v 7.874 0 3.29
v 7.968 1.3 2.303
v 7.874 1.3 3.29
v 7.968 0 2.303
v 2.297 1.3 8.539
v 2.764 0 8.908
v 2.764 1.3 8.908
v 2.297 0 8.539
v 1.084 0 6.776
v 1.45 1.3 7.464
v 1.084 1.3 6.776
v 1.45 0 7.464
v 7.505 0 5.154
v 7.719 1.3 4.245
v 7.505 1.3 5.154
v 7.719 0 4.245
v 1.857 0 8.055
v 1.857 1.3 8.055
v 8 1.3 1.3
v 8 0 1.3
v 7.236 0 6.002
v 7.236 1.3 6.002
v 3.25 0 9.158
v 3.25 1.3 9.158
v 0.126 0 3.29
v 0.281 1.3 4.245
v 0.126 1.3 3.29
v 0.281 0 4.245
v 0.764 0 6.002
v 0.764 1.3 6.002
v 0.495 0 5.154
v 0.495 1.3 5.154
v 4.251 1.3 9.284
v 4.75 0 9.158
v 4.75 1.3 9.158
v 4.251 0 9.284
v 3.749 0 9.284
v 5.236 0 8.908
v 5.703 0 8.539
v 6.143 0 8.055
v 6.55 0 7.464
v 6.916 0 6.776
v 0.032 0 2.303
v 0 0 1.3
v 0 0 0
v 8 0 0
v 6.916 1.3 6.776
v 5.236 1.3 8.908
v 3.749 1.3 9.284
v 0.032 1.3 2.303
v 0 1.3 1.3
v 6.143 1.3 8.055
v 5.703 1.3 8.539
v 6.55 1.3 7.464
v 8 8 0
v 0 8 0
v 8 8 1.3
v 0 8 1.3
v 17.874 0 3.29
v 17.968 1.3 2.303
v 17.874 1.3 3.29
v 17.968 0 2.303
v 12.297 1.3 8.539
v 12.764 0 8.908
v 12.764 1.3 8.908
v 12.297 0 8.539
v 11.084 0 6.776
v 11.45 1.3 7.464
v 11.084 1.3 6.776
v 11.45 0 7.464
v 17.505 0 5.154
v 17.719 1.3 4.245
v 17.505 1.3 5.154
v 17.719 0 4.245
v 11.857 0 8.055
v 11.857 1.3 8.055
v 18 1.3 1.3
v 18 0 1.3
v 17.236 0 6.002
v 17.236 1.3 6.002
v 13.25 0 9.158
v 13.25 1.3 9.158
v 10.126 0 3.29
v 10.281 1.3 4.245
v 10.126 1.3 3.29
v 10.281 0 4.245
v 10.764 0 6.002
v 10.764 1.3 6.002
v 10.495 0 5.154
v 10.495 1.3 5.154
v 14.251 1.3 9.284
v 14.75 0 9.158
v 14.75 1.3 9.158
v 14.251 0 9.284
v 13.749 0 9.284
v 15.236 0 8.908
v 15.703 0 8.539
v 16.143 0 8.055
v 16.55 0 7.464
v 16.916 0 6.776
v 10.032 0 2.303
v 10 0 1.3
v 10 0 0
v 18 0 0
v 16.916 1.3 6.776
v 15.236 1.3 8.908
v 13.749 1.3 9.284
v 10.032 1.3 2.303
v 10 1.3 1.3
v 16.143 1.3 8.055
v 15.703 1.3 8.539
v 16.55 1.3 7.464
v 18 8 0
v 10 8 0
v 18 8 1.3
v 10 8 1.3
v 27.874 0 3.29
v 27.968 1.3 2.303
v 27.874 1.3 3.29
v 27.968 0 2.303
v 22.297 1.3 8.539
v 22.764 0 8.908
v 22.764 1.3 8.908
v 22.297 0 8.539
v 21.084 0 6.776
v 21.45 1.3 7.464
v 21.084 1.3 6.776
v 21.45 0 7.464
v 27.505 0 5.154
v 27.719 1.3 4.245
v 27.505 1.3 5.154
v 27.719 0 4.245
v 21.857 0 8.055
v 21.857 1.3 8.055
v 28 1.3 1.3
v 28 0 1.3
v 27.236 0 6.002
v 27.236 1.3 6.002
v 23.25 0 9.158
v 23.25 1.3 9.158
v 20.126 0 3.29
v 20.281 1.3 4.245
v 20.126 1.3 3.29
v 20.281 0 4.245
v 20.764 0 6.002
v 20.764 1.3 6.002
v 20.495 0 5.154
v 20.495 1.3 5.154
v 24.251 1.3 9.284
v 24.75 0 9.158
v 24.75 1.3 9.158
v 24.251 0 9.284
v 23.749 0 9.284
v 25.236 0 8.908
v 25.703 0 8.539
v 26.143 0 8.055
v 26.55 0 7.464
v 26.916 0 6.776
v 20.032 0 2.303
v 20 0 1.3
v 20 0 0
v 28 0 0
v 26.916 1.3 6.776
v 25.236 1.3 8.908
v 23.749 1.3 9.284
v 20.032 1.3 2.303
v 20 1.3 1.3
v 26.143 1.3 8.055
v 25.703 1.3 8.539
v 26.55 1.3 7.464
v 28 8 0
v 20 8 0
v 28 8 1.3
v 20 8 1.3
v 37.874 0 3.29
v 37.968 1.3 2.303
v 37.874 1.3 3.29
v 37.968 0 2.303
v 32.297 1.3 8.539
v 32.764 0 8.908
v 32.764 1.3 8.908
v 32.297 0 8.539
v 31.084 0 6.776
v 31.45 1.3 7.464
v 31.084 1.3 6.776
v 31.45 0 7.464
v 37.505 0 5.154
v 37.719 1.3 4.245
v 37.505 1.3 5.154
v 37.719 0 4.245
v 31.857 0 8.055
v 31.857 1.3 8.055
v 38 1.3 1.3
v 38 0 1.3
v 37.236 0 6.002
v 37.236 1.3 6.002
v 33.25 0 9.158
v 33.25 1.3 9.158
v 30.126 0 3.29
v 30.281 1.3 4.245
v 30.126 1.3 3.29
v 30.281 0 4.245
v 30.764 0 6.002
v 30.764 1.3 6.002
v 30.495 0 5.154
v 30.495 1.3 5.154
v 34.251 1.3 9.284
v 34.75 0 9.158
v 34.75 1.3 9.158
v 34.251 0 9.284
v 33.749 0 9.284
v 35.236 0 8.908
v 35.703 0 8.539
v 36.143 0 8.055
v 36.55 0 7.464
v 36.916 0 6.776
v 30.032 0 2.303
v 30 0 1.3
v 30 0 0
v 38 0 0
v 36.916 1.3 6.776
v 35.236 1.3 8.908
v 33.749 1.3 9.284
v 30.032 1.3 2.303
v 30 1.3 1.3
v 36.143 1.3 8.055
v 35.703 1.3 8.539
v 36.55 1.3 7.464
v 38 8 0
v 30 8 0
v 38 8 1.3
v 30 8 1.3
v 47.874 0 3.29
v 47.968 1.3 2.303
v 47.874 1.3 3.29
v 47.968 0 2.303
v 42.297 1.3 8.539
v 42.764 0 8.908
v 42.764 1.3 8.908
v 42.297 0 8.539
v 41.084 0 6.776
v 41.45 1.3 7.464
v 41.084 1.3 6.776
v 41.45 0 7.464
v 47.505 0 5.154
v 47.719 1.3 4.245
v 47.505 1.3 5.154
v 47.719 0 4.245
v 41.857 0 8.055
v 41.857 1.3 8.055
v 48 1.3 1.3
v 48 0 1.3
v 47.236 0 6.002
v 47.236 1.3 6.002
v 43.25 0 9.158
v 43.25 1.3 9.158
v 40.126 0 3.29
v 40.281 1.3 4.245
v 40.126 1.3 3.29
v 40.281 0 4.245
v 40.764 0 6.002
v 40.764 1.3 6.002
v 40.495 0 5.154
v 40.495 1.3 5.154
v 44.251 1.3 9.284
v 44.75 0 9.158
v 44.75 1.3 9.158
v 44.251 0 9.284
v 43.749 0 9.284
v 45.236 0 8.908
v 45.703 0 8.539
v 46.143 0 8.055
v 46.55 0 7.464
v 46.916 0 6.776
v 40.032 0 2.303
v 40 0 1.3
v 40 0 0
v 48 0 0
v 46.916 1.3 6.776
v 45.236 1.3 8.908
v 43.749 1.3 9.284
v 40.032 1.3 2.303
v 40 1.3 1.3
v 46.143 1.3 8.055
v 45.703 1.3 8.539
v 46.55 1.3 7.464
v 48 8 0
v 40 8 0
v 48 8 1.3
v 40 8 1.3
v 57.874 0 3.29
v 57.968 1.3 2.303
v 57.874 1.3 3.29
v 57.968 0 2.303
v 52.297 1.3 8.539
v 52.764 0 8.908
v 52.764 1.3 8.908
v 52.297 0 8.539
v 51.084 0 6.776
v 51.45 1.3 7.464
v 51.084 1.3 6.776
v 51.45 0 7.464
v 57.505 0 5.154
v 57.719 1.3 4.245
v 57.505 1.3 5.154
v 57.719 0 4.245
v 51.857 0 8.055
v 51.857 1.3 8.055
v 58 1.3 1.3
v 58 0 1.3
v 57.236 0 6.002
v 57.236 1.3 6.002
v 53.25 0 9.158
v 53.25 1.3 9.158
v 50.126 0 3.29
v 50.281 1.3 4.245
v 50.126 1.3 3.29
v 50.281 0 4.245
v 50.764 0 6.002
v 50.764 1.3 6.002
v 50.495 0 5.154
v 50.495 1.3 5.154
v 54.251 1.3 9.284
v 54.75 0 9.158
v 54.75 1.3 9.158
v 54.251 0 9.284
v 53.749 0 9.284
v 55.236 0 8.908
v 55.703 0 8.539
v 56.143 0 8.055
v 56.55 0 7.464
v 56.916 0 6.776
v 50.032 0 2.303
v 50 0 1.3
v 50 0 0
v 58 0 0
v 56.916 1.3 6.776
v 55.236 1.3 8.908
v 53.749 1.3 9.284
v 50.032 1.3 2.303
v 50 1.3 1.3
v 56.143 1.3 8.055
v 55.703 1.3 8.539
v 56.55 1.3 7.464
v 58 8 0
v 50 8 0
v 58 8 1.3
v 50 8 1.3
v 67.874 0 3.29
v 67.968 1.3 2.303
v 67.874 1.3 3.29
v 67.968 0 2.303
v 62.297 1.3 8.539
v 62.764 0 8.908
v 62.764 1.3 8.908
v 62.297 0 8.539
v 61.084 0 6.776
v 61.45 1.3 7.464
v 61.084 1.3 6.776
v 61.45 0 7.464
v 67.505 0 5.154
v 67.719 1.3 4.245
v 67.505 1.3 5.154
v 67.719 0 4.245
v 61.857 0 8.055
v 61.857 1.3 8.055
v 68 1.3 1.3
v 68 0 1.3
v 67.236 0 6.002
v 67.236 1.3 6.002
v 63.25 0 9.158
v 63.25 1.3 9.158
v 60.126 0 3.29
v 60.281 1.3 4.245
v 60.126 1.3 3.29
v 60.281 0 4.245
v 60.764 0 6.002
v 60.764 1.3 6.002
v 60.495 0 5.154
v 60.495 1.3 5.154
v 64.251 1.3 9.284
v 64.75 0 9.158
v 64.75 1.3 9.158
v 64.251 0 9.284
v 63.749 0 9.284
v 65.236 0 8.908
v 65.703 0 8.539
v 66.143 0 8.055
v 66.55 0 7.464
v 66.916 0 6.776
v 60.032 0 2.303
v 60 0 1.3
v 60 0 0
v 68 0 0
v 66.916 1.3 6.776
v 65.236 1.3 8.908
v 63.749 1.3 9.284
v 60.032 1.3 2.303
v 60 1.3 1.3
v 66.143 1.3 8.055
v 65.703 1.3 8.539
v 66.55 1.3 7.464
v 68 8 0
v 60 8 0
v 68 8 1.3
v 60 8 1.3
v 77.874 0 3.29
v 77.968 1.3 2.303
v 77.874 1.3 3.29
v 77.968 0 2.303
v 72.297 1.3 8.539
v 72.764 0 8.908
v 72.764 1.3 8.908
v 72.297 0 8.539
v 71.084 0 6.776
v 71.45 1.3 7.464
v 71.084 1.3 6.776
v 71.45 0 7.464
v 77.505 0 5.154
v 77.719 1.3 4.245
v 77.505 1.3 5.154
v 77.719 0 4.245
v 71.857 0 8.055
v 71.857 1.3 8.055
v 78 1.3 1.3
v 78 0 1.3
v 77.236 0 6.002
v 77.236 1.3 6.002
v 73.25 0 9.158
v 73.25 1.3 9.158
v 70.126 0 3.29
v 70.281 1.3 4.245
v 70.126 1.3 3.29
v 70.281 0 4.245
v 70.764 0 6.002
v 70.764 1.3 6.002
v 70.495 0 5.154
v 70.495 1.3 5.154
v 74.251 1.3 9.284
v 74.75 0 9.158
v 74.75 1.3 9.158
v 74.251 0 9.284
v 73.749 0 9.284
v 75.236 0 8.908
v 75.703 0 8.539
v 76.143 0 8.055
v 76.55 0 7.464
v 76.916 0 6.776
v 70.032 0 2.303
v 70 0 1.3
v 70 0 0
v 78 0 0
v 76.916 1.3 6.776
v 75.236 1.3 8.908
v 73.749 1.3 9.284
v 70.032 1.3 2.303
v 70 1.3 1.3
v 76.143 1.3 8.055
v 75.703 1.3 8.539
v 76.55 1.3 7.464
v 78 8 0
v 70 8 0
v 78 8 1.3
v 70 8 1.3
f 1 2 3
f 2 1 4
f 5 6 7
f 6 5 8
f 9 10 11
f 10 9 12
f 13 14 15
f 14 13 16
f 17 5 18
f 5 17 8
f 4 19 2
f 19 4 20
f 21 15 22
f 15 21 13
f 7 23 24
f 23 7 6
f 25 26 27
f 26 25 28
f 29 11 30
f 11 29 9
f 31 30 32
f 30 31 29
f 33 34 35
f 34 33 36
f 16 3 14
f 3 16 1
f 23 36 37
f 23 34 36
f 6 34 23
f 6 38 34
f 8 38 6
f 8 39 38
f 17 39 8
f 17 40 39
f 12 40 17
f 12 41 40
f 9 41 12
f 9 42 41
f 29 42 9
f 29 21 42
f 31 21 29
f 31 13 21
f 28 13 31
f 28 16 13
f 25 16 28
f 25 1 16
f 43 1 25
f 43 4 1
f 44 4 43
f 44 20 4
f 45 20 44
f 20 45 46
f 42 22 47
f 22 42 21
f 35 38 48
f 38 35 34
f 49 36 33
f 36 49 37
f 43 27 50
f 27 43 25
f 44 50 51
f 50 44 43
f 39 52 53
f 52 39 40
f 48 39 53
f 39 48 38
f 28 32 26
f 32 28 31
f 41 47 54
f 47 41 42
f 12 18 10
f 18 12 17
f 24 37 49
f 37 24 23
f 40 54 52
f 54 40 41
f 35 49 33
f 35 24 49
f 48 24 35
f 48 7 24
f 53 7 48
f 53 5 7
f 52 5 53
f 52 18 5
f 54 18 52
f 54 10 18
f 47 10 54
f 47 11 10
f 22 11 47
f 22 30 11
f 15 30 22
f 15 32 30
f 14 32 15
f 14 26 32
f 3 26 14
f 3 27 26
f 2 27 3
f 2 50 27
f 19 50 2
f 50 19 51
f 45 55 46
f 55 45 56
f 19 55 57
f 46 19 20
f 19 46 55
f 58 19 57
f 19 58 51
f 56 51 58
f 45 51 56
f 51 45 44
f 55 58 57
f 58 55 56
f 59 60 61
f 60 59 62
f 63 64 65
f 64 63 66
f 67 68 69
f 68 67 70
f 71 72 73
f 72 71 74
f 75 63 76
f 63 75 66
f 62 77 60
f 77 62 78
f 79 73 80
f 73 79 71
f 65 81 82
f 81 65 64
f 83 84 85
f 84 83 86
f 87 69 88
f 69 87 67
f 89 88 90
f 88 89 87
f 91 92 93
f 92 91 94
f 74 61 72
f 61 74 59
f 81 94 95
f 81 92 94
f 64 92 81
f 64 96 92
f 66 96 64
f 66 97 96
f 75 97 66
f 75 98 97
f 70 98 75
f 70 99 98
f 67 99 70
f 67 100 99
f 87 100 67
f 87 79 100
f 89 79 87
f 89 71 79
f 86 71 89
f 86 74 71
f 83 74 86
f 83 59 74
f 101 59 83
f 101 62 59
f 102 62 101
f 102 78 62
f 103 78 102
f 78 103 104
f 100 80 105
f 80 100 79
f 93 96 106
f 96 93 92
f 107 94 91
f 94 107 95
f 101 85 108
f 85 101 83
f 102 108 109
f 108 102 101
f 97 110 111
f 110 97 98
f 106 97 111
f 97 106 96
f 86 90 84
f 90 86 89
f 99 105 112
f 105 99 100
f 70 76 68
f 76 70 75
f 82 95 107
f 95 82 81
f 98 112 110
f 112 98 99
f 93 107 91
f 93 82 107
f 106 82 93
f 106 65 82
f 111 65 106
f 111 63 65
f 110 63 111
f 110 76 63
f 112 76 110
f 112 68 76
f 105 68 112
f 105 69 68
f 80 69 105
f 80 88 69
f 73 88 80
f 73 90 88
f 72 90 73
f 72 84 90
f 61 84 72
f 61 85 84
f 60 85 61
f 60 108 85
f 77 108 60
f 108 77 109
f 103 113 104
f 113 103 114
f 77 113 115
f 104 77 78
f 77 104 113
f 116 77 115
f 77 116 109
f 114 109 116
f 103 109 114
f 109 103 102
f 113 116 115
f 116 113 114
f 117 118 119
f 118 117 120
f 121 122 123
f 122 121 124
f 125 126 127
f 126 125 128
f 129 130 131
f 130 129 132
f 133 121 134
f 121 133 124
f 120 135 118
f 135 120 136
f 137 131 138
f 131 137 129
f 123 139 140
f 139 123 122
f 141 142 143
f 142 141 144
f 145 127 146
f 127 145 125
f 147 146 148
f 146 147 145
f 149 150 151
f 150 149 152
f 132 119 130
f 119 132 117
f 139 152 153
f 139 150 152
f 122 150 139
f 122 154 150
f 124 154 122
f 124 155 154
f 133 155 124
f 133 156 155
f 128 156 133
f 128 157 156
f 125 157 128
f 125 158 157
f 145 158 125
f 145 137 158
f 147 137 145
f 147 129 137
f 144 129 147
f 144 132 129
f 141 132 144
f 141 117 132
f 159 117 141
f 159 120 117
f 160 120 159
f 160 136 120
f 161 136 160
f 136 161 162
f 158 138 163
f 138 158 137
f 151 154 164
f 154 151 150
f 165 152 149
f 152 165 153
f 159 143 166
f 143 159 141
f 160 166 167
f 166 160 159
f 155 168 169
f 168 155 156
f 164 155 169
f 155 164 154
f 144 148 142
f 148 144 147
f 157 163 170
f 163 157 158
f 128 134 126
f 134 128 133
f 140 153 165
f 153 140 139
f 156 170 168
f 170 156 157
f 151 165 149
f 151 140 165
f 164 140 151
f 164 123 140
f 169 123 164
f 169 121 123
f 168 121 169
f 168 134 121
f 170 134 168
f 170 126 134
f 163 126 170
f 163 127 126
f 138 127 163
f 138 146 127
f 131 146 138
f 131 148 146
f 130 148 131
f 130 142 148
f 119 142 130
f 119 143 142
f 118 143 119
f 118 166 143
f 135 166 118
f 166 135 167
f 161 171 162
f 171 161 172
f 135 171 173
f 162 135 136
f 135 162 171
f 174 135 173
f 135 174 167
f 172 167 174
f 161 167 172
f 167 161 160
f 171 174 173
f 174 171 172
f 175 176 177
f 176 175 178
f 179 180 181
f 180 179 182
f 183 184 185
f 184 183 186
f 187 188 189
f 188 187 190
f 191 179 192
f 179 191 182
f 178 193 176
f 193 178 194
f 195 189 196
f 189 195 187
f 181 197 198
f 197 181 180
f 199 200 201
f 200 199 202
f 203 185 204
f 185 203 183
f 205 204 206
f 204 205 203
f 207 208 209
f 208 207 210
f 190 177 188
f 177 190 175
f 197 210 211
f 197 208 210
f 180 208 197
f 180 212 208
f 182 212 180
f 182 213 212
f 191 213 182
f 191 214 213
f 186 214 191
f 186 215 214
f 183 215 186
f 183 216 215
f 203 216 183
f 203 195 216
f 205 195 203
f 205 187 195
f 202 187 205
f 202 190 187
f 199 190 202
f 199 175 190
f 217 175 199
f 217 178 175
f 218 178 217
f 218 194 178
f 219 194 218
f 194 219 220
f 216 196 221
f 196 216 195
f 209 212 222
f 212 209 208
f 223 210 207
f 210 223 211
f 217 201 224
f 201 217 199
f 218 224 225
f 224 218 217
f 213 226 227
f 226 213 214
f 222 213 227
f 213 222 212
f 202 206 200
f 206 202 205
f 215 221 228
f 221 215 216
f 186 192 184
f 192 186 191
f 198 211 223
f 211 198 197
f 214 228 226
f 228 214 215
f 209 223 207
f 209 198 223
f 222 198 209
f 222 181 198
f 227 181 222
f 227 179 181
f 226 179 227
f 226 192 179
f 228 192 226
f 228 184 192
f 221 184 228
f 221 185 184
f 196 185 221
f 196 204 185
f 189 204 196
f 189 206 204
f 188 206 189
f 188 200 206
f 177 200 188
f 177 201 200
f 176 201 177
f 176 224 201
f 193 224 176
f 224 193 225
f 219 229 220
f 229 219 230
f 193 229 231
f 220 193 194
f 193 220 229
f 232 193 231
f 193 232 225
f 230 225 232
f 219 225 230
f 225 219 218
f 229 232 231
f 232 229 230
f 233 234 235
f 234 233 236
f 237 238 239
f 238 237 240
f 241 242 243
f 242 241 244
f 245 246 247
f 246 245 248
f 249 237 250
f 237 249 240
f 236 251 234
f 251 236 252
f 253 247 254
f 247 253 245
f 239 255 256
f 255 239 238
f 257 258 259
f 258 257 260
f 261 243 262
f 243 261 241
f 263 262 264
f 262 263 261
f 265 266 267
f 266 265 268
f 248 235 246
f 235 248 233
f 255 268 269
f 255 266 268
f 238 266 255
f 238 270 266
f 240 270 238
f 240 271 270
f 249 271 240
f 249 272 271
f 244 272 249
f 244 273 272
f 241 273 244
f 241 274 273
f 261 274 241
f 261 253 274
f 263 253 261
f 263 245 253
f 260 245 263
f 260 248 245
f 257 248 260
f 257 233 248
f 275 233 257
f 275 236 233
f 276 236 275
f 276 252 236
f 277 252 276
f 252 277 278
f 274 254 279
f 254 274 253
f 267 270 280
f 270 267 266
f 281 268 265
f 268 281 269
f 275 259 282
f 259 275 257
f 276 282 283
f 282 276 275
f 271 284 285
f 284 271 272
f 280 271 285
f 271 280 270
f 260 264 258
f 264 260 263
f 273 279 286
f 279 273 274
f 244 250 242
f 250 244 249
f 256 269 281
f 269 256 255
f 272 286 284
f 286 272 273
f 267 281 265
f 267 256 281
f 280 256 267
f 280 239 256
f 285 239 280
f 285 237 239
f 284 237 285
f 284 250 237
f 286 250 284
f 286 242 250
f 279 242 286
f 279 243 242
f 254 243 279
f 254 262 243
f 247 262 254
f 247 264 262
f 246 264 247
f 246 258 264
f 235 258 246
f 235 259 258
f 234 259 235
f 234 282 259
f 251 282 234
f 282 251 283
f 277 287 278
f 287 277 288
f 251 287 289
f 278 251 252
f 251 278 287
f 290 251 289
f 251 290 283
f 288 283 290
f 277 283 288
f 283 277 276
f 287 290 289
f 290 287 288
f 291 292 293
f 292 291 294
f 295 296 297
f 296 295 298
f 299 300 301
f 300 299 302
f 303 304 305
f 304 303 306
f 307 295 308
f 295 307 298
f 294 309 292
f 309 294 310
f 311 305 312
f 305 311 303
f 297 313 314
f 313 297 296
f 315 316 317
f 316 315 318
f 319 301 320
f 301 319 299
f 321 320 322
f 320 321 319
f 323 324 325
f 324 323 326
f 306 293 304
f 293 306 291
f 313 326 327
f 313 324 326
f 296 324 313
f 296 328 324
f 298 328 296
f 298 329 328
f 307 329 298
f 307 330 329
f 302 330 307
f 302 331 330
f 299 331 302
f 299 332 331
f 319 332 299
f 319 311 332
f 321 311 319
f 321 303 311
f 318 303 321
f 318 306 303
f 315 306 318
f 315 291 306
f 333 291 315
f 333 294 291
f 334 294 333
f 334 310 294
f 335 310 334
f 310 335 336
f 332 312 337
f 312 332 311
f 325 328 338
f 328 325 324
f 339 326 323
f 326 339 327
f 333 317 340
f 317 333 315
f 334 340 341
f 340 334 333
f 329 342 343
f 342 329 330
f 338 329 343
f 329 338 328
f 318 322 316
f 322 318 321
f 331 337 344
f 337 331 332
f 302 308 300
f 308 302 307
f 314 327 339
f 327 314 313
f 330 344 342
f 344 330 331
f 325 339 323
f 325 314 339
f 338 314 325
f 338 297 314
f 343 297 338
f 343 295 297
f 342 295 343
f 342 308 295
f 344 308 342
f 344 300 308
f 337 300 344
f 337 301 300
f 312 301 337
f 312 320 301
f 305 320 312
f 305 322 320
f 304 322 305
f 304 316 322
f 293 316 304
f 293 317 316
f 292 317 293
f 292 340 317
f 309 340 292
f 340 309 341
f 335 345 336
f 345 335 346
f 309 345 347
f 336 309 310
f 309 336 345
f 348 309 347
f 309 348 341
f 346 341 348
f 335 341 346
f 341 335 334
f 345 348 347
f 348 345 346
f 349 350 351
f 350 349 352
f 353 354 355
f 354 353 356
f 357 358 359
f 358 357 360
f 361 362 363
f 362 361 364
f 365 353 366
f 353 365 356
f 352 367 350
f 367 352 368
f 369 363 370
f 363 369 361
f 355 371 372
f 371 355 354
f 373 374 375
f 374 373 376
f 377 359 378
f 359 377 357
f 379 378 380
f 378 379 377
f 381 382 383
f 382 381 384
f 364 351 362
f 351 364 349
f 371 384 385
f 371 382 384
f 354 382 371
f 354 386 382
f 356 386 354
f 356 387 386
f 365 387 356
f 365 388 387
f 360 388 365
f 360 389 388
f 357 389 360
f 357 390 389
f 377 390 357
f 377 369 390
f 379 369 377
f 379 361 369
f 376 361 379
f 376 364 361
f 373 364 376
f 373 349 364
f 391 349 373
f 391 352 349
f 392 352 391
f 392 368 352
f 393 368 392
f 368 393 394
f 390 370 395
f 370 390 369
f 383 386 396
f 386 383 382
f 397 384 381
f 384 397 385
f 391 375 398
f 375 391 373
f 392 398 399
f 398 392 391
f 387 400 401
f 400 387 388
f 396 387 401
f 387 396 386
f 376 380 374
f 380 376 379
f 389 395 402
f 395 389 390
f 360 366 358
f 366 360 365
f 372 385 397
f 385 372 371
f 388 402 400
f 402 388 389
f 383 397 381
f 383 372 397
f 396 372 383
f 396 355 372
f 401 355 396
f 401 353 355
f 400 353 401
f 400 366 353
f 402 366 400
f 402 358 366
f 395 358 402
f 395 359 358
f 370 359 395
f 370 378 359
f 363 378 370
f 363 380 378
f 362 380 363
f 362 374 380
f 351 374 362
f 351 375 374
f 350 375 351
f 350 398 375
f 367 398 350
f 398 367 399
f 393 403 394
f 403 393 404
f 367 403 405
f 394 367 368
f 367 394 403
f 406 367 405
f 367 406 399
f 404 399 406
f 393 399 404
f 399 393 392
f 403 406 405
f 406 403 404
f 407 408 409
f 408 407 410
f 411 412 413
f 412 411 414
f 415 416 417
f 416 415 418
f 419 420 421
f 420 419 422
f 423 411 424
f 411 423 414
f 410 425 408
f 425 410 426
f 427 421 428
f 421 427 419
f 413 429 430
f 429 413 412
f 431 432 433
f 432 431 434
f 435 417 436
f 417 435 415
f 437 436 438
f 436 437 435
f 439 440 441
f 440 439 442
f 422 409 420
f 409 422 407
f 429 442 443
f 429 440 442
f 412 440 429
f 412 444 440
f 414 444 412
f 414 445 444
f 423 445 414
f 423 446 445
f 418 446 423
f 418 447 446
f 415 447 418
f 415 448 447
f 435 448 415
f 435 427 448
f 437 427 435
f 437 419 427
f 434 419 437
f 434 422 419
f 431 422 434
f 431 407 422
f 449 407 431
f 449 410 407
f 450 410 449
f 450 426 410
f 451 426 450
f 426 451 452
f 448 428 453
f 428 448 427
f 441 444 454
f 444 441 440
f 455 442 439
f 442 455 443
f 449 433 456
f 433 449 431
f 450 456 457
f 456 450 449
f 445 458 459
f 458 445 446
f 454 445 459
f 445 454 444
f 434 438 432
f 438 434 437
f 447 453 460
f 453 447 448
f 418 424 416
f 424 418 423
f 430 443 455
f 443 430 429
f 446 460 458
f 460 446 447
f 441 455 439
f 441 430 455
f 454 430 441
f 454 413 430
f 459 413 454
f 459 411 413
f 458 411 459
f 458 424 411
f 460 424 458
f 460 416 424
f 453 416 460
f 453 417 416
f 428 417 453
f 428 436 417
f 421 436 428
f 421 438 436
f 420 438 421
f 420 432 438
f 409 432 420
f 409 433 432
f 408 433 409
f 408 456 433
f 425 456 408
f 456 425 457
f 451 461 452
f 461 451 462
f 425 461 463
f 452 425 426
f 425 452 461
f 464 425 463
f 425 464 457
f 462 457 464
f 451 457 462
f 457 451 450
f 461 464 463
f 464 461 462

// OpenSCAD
/*
 * a tab to hold the maxxair fan blind up
 */

$fn=50;

back_size = 8;
thickness = 1.3;

module back() {
   translate([back_size/2, thickness, thickness])
      rotate([90, 0, 0])
         scale([1, 2, 1])
            cylinder(d=back_size, h=thickness);
}

module back_cutoff() {
   translate([0, 0, -back_size])
      cube(back_size);
}

module tab() {
   cube([back_size, back_size, thickness]);

   difference() {
      back();
      back_cutoff();
   }
}

for (offset = [0:10:70]) {
   translate([offset, 0, 0])
      tab();
}
